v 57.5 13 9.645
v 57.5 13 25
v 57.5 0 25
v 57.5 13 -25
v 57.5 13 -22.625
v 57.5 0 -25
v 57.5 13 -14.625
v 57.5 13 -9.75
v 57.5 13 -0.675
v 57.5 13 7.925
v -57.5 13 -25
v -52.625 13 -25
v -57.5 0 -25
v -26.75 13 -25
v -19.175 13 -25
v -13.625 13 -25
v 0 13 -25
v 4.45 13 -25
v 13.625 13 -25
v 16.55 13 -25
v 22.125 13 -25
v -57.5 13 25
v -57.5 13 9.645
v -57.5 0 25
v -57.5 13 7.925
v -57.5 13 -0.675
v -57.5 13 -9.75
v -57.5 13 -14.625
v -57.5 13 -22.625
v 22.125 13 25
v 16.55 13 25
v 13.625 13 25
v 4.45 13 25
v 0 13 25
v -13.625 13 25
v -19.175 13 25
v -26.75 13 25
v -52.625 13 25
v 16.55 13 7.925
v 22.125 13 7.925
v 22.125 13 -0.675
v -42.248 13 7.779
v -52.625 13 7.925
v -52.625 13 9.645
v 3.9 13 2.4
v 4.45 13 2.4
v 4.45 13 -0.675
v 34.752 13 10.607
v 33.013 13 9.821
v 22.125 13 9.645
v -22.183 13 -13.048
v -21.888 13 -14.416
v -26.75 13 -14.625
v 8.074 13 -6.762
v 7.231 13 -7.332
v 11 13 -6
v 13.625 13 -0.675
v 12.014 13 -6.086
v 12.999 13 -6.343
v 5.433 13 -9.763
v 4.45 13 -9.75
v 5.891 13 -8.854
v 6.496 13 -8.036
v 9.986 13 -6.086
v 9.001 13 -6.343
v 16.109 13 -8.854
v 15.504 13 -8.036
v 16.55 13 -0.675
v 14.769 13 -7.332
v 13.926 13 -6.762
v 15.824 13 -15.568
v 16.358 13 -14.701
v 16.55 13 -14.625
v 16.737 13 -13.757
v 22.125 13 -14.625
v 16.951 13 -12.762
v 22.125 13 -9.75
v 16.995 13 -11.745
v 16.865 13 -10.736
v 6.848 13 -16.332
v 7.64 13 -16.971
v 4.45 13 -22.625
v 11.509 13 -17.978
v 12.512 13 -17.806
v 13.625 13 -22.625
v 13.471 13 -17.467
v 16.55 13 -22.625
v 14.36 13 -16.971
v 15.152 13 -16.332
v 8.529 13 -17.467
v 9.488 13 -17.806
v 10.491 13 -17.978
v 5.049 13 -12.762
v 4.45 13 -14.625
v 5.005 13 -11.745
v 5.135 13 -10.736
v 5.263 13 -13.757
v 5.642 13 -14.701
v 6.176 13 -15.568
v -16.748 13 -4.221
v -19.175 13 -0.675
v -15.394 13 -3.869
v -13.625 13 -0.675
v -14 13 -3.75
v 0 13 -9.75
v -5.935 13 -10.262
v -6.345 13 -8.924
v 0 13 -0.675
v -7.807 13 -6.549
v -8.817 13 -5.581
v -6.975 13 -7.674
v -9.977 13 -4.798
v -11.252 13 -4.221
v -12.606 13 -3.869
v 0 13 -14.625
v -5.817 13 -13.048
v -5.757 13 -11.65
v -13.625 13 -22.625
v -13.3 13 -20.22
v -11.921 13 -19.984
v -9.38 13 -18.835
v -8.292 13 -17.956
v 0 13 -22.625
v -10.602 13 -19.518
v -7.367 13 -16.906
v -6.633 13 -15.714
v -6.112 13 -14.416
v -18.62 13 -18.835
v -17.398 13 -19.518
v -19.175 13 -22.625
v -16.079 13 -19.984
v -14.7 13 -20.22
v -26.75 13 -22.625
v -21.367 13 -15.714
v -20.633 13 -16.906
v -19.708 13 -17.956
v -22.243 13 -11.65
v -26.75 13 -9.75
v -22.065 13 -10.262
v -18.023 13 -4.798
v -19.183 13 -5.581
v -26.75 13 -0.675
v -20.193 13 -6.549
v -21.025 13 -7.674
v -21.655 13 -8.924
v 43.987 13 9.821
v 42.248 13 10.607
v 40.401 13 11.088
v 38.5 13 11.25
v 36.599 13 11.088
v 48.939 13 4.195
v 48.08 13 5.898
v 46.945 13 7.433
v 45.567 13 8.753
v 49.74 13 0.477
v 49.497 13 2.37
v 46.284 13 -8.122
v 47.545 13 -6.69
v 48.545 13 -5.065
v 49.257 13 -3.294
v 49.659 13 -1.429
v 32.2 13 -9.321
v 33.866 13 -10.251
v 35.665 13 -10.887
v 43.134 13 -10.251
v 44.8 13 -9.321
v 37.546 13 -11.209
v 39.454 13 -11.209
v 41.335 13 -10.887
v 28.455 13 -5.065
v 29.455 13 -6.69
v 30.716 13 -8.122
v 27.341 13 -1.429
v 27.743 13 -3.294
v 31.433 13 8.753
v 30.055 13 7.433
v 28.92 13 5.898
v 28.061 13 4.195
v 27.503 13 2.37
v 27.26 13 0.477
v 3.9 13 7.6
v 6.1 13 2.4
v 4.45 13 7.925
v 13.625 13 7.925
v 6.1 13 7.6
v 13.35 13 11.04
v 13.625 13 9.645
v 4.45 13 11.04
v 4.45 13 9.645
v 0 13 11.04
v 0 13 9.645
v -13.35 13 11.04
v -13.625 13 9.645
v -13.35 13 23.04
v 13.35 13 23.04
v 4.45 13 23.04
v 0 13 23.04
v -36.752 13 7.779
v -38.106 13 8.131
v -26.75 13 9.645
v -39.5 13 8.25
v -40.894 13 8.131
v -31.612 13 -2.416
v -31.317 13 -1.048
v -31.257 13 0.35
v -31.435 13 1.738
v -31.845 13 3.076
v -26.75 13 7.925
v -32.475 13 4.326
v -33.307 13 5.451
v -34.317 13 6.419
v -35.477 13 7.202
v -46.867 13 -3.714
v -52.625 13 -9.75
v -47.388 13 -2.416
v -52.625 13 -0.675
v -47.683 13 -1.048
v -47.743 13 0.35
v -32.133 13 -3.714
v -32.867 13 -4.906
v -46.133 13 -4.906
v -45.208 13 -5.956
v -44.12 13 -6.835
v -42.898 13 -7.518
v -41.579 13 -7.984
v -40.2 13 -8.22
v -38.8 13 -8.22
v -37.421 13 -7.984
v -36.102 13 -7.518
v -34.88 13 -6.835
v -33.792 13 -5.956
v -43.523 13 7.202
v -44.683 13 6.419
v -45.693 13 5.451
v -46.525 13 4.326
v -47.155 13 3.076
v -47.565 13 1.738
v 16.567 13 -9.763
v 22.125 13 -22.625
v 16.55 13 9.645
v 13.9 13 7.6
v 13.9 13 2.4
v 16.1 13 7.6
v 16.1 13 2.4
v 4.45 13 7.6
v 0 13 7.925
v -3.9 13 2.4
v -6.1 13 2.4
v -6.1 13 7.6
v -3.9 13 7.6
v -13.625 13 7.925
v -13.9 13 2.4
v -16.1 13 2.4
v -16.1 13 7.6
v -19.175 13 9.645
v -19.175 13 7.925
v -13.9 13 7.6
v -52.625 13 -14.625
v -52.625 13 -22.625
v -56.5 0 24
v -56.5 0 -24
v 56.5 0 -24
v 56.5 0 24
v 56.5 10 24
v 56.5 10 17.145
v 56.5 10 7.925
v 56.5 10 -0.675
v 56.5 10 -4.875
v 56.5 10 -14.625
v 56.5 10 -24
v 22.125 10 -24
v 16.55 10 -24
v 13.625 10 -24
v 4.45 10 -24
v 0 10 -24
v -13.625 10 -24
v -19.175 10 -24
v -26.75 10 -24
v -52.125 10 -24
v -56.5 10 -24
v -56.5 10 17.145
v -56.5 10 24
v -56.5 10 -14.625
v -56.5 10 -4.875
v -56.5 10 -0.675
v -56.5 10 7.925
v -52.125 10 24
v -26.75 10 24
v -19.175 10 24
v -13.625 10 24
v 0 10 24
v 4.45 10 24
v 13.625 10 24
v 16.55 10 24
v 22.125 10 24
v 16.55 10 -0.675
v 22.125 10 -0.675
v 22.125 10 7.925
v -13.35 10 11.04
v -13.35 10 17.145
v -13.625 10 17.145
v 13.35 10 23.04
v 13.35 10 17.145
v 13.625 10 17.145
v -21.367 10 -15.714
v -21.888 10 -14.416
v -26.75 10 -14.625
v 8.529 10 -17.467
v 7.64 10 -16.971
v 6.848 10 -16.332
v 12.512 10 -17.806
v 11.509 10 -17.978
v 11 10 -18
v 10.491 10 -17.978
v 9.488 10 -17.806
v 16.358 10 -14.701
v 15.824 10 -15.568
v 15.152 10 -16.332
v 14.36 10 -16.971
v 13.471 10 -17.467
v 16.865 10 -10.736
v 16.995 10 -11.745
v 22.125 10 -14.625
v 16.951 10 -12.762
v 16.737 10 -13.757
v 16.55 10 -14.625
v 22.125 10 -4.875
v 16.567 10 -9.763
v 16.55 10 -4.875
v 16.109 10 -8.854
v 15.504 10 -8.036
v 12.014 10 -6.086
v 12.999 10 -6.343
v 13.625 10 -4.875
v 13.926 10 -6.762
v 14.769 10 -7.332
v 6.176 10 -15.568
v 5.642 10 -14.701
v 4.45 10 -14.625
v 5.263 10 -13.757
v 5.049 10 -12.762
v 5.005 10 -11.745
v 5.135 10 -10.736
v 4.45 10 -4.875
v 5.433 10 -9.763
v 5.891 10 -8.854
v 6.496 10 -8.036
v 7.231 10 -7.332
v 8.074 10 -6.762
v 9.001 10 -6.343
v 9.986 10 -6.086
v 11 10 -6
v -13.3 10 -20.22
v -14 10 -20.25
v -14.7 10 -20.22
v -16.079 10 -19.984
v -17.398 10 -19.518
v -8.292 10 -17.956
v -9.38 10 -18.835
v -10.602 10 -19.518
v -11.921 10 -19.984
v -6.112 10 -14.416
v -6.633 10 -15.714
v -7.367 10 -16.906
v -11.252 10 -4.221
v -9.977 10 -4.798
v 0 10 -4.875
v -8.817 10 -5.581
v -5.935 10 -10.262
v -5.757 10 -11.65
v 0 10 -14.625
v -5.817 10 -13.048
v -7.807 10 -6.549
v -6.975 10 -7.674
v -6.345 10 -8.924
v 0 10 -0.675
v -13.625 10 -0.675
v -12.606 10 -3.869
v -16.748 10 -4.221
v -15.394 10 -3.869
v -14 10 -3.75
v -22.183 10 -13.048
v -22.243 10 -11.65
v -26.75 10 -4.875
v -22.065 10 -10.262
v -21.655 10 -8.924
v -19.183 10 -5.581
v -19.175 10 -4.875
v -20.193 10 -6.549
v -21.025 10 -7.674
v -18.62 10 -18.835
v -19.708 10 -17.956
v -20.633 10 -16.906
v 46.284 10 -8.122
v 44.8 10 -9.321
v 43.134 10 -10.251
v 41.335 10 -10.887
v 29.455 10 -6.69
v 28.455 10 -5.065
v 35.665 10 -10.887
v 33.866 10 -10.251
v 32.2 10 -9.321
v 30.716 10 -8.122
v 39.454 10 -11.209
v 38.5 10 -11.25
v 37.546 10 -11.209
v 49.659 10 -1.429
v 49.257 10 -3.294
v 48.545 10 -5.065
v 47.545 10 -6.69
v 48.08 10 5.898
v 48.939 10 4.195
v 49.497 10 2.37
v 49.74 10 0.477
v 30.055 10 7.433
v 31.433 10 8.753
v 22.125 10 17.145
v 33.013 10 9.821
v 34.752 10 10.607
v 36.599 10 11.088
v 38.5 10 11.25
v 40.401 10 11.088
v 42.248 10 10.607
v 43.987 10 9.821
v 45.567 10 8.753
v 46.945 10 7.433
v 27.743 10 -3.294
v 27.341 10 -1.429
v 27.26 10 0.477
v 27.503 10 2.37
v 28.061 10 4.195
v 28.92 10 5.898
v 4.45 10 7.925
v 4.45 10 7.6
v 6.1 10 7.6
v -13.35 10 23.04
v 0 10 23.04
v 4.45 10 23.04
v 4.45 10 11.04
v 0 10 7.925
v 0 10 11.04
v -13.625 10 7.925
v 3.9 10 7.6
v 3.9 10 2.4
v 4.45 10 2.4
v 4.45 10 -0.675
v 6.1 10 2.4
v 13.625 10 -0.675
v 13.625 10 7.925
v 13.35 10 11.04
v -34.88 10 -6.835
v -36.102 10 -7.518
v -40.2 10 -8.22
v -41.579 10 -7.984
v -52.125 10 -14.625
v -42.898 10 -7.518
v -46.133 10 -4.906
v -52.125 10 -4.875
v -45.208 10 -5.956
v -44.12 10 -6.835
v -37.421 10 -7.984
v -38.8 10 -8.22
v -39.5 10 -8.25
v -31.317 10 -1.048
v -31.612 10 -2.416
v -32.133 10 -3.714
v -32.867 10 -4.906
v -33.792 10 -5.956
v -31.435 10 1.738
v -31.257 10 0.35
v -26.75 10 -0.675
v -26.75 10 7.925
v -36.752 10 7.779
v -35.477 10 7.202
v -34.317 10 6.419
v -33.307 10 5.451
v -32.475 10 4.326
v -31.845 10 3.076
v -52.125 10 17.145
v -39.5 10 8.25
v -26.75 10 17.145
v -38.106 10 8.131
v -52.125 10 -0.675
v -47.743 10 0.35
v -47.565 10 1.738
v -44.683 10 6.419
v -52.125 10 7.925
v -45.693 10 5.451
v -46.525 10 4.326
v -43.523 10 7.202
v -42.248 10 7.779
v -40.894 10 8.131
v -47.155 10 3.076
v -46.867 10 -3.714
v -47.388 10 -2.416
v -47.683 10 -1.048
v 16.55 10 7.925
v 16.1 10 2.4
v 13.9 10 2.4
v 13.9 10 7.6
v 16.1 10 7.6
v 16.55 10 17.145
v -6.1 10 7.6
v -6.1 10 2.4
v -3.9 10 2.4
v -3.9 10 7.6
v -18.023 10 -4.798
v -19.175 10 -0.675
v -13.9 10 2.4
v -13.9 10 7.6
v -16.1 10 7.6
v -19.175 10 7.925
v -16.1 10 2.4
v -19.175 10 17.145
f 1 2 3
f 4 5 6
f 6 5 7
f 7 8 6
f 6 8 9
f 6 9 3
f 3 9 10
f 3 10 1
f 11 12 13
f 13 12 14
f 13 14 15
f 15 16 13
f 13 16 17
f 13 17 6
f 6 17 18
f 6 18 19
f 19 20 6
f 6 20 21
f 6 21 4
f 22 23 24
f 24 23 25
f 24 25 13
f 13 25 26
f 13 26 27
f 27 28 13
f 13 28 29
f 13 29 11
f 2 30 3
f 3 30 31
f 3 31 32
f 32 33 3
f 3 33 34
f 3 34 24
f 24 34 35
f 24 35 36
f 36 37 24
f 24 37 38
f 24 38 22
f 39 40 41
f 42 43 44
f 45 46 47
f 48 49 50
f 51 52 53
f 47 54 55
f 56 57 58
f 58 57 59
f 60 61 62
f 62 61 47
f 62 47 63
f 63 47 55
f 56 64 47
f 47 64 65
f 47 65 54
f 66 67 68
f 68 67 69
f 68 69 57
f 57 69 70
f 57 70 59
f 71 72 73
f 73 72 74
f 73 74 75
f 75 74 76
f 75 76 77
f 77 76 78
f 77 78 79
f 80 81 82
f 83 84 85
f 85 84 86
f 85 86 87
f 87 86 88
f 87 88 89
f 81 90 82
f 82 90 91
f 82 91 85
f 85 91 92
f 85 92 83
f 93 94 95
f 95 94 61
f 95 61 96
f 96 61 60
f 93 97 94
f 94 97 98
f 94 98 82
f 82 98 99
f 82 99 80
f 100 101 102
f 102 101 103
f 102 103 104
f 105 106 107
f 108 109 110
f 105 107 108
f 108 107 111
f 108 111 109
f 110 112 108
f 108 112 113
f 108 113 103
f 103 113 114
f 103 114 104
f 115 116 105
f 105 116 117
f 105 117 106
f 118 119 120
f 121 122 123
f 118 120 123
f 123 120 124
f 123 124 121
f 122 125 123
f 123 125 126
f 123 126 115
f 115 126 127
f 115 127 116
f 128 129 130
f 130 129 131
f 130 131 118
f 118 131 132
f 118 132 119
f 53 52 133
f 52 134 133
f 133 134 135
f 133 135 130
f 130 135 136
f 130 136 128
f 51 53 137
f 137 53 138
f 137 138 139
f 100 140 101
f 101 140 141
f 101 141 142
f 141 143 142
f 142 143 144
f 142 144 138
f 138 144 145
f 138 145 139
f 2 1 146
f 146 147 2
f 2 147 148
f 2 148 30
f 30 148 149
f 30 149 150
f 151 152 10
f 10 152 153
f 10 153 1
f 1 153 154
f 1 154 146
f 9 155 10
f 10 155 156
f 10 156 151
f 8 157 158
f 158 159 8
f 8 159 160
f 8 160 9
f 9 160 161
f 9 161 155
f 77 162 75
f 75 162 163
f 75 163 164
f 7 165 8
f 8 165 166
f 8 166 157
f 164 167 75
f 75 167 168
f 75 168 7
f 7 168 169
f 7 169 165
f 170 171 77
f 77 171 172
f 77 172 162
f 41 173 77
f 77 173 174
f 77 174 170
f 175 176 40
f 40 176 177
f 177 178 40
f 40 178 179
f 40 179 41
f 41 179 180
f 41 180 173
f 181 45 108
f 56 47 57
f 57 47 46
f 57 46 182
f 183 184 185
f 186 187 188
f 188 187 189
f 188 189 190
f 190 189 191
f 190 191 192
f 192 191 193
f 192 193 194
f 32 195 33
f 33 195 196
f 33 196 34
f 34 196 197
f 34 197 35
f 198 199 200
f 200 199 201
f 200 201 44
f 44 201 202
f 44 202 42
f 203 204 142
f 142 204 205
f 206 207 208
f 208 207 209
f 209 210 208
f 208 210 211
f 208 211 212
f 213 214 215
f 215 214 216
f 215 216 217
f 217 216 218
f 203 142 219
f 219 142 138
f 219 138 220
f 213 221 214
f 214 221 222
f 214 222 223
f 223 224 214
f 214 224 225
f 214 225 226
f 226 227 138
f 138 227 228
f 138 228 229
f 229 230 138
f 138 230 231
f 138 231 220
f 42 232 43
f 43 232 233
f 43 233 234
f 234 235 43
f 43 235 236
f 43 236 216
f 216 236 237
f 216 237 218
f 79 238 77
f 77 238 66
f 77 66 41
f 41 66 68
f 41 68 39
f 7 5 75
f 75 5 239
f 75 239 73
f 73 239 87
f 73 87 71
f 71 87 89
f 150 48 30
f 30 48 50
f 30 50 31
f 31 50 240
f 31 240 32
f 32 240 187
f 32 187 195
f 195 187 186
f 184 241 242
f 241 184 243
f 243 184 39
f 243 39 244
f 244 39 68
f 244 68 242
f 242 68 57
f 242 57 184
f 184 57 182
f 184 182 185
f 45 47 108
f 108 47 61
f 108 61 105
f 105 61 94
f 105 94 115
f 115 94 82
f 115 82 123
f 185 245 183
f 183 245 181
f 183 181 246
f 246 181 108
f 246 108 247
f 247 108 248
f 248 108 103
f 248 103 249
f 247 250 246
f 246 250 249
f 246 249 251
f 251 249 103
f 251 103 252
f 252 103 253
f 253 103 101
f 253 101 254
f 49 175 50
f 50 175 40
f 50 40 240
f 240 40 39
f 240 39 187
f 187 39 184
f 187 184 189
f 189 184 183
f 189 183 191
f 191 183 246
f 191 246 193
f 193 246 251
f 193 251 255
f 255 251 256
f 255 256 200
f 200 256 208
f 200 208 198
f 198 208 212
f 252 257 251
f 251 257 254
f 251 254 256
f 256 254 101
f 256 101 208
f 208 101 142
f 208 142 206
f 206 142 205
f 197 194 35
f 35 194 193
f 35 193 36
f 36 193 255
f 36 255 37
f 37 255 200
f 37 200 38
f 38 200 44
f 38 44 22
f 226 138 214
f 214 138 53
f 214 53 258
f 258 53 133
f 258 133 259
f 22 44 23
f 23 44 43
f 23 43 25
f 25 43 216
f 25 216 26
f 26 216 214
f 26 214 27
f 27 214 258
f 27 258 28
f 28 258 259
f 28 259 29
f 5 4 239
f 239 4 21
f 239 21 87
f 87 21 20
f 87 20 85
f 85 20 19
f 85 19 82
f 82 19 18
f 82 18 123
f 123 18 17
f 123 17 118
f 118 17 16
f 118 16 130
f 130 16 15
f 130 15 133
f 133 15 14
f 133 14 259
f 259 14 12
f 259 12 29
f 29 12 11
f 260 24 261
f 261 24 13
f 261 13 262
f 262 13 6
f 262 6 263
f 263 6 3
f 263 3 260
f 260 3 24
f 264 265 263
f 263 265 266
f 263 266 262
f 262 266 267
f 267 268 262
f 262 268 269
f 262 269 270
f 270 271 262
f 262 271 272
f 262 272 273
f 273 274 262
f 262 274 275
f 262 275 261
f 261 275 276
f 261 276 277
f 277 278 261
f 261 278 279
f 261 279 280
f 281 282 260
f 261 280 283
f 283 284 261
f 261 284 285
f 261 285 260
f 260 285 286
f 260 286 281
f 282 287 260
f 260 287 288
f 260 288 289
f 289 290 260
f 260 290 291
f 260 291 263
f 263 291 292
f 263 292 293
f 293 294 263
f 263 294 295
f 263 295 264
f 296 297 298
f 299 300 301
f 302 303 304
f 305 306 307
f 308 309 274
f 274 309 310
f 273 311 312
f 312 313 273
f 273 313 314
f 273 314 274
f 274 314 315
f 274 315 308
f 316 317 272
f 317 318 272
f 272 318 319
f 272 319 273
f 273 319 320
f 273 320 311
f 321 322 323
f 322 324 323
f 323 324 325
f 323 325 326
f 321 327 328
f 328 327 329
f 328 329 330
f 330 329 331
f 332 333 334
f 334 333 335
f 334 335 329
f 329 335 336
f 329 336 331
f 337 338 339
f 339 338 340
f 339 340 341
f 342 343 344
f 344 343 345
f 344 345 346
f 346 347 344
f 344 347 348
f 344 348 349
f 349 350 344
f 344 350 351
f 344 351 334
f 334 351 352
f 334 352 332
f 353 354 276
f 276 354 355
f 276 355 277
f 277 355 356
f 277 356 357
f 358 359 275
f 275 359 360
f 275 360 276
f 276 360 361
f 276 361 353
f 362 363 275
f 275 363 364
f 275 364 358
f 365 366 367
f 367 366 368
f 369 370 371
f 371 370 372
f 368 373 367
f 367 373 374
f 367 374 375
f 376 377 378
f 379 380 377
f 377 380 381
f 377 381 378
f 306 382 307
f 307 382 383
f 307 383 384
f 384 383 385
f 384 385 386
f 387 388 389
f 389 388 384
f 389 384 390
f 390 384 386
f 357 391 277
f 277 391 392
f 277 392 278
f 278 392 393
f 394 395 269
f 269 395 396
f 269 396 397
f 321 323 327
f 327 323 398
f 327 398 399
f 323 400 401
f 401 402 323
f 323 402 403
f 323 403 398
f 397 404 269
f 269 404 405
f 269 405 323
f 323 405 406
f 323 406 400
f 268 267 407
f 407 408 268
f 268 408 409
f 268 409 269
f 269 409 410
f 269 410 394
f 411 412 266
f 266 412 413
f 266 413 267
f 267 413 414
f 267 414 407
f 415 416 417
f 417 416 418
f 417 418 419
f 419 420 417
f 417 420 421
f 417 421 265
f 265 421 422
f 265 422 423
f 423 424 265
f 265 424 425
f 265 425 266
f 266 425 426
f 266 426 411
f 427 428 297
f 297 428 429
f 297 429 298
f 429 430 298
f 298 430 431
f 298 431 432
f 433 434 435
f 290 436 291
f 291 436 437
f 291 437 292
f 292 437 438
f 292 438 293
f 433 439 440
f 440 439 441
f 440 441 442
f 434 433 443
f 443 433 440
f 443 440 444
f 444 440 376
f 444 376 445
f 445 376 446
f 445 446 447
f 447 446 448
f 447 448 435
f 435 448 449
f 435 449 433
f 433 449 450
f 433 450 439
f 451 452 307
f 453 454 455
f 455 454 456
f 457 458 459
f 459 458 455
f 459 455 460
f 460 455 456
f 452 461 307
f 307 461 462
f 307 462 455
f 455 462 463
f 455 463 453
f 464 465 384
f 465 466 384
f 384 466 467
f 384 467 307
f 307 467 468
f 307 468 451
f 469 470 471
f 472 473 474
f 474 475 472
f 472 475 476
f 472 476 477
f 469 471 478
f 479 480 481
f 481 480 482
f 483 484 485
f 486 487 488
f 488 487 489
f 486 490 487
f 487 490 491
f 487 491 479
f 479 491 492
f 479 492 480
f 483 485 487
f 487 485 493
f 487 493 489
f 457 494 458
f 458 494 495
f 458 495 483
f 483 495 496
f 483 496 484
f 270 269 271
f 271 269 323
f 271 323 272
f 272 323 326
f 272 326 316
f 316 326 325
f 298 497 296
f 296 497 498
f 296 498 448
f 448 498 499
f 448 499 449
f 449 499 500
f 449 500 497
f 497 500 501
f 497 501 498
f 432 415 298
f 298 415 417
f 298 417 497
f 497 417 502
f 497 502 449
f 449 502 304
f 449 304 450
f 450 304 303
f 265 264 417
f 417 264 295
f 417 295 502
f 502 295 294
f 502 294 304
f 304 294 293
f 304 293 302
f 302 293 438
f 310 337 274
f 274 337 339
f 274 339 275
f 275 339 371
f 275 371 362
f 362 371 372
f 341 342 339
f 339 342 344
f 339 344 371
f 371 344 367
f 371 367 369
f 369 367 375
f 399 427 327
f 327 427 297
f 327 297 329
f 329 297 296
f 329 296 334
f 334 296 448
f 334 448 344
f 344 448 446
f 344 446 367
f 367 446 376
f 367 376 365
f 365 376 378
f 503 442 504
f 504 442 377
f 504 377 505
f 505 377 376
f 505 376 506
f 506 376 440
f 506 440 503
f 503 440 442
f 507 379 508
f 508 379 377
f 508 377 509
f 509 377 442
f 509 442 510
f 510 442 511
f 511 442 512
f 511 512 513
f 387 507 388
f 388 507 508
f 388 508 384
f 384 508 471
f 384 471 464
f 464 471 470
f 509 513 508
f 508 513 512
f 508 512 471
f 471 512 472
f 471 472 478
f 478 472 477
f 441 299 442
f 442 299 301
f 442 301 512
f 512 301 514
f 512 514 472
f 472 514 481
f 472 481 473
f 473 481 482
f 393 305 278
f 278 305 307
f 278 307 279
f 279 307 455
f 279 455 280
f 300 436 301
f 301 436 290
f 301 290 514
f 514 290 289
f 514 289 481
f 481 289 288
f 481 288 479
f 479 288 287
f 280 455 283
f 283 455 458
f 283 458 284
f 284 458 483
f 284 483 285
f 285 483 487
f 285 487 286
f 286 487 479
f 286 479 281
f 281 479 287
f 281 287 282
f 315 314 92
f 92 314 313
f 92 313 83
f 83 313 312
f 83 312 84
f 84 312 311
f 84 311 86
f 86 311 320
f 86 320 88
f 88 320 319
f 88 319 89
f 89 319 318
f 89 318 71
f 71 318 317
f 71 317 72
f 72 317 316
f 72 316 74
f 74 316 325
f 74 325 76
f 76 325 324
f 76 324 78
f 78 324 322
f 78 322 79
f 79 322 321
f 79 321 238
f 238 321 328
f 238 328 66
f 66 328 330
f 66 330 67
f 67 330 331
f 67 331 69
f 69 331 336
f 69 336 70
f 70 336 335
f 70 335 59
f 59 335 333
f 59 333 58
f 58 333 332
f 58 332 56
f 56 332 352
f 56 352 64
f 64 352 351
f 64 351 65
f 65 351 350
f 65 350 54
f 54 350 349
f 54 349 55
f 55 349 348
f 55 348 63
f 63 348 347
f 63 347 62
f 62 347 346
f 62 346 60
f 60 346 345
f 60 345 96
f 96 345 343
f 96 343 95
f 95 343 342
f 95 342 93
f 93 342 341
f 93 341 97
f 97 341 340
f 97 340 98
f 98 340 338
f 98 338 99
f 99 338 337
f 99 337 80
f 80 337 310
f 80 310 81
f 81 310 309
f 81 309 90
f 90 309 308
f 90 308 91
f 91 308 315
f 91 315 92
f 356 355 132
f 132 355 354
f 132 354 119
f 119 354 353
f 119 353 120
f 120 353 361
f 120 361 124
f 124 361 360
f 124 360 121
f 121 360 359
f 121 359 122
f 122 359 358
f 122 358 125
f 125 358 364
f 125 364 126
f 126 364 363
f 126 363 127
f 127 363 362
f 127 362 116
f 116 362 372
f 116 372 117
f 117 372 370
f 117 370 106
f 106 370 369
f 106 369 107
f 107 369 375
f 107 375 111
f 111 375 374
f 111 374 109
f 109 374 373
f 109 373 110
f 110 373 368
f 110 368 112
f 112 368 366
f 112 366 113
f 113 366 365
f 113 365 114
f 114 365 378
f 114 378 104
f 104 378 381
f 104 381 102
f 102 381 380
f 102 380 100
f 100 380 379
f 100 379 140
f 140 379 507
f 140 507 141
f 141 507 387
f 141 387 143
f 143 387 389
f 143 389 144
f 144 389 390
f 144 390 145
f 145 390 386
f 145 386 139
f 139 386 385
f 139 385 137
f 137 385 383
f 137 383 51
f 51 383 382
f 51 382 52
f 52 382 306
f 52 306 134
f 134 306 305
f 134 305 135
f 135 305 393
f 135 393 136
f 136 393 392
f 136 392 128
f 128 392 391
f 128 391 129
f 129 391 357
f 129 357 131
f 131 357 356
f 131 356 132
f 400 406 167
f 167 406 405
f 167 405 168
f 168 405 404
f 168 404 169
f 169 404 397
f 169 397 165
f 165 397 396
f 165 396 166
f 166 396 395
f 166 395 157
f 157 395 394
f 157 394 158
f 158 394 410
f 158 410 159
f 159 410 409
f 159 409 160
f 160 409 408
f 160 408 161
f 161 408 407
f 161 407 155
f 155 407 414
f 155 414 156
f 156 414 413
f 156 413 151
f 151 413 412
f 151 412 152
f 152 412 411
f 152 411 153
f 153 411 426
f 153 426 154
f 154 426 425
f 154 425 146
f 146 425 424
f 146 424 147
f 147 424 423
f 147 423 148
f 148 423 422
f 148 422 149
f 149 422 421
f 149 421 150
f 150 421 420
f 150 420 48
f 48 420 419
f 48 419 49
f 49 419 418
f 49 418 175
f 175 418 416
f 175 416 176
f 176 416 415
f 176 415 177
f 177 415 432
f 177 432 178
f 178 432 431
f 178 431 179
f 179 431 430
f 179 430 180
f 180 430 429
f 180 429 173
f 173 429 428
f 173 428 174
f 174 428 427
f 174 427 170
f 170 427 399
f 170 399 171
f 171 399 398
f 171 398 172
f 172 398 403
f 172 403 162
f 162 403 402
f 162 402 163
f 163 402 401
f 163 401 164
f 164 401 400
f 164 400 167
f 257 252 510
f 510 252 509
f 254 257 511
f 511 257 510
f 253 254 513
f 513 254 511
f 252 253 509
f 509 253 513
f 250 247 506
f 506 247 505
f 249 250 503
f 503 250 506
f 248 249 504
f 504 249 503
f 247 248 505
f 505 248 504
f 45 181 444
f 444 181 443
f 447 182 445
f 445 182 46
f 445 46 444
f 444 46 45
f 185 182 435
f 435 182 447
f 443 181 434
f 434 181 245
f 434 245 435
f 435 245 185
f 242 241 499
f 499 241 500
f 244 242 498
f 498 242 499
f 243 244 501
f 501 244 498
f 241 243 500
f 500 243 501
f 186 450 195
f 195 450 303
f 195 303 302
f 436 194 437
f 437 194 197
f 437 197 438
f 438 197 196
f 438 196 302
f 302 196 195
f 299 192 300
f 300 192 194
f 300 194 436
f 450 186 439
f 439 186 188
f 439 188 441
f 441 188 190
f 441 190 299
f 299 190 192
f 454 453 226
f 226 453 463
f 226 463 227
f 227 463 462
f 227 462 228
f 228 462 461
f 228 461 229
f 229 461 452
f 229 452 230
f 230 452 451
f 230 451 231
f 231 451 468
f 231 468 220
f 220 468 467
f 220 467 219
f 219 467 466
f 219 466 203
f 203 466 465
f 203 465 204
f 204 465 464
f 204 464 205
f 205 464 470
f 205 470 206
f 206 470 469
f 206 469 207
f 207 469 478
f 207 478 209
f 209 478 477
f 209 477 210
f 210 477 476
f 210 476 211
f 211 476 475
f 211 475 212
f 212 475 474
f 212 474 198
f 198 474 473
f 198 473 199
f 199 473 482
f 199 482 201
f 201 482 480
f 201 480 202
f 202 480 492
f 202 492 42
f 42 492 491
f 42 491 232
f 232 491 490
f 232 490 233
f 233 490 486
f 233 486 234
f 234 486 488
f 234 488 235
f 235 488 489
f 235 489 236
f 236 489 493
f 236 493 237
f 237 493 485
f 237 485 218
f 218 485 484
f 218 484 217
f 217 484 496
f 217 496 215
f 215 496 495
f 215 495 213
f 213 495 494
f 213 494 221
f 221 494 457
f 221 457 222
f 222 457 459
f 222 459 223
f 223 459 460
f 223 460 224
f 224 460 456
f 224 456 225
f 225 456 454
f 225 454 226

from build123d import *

# Parameters (mm, degrees)
SKETCH_1_W          = 115
SKETCH_1_H          = 50
EXTRUDE_1_DEPTH     = 13
SKETCH_2_W          = 113
SKETCH_2_H          = 48
CUT_EXTRUDE_1_DEPTH = 10
SKETCH_3_R          = 8.25
SKETCH_3_R_2        = 11.25
SKETCH_3_R_3        = 6
SKETCH_3_W          = 26.7
SKETCH_3_H          = 12
SKETCH_3_W_2        = 2.2
SKETCH_3_H_2        = 5.2
CUT_EXTRUDE_2_DEPTH = 10


with BuildPart() as part:
    # 草图1 → 凸台-拉伸1 (new body)
    with BuildSketch(Plane(origin=(0, 0, 0), x_dir=(1, 0, 0), z_dir=(0, 1, 0))):
        Rectangle(SKETCH_1_W, SKETCH_1_H)
    extrude(amount=EXTRUDE_1_DEPTH)

    # 草图2 → 切除-拉伸1 (cut)
    with BuildSketch(Plane.XZ):
        Rectangle(SKETCH_2_W, SKETCH_2_H)
    extrude(amount=-CUT_EXTRUDE_1_DEPTH, mode=Mode.SUBTRACT)

    # 草图3 → 切除-拉伸2 (cut)
    with BuildSketch(Plane(origin=(0, 13, 0), x_dir=(1, 0, 0), z_dir=(0, 1, 0))):
        with Locations(Location((-39.5, 0, 0), (0, 0, 270))):
            Circle(SKETCH_3_R)
        with Locations(Location((38.5, 0, 0), (0, 0, 270))):
            Circle(SKETCH_3_R_2)
        with Locations(Location((-14, 12, 0), (0, 0, 270))):
            Circle(SKETCH_3_R)
        with Locations(Location((11, 12, 0), (0, 0, 270))):
            Circle(SKETCH_3_R_3)
        with Locations((0, -17.039877017)):
            Rectangle(SKETCH_3_W, SKETCH_3_H)
        with Locations((-15, -5)):
            Rectangle(SKETCH_3_W_2, SKETCH_3_H_2)
        with Locations((15, -5)):
            Rectangle(SKETCH_3_W_2, SKETCH_3_H_2)
        with Locations((5, -5)):
            Rectangle(SKETCH_3_W_2, SKETCH_3_H_2)
        with Locations((-5, -5)):
            Rectangle(SKETCH_3_W_2, SKETCH_3_H_2)
    extrude(amount=-CUT_EXTRUDE_2_DEPTH, mode=Mode.SUBTRACT)


solid = part.part
